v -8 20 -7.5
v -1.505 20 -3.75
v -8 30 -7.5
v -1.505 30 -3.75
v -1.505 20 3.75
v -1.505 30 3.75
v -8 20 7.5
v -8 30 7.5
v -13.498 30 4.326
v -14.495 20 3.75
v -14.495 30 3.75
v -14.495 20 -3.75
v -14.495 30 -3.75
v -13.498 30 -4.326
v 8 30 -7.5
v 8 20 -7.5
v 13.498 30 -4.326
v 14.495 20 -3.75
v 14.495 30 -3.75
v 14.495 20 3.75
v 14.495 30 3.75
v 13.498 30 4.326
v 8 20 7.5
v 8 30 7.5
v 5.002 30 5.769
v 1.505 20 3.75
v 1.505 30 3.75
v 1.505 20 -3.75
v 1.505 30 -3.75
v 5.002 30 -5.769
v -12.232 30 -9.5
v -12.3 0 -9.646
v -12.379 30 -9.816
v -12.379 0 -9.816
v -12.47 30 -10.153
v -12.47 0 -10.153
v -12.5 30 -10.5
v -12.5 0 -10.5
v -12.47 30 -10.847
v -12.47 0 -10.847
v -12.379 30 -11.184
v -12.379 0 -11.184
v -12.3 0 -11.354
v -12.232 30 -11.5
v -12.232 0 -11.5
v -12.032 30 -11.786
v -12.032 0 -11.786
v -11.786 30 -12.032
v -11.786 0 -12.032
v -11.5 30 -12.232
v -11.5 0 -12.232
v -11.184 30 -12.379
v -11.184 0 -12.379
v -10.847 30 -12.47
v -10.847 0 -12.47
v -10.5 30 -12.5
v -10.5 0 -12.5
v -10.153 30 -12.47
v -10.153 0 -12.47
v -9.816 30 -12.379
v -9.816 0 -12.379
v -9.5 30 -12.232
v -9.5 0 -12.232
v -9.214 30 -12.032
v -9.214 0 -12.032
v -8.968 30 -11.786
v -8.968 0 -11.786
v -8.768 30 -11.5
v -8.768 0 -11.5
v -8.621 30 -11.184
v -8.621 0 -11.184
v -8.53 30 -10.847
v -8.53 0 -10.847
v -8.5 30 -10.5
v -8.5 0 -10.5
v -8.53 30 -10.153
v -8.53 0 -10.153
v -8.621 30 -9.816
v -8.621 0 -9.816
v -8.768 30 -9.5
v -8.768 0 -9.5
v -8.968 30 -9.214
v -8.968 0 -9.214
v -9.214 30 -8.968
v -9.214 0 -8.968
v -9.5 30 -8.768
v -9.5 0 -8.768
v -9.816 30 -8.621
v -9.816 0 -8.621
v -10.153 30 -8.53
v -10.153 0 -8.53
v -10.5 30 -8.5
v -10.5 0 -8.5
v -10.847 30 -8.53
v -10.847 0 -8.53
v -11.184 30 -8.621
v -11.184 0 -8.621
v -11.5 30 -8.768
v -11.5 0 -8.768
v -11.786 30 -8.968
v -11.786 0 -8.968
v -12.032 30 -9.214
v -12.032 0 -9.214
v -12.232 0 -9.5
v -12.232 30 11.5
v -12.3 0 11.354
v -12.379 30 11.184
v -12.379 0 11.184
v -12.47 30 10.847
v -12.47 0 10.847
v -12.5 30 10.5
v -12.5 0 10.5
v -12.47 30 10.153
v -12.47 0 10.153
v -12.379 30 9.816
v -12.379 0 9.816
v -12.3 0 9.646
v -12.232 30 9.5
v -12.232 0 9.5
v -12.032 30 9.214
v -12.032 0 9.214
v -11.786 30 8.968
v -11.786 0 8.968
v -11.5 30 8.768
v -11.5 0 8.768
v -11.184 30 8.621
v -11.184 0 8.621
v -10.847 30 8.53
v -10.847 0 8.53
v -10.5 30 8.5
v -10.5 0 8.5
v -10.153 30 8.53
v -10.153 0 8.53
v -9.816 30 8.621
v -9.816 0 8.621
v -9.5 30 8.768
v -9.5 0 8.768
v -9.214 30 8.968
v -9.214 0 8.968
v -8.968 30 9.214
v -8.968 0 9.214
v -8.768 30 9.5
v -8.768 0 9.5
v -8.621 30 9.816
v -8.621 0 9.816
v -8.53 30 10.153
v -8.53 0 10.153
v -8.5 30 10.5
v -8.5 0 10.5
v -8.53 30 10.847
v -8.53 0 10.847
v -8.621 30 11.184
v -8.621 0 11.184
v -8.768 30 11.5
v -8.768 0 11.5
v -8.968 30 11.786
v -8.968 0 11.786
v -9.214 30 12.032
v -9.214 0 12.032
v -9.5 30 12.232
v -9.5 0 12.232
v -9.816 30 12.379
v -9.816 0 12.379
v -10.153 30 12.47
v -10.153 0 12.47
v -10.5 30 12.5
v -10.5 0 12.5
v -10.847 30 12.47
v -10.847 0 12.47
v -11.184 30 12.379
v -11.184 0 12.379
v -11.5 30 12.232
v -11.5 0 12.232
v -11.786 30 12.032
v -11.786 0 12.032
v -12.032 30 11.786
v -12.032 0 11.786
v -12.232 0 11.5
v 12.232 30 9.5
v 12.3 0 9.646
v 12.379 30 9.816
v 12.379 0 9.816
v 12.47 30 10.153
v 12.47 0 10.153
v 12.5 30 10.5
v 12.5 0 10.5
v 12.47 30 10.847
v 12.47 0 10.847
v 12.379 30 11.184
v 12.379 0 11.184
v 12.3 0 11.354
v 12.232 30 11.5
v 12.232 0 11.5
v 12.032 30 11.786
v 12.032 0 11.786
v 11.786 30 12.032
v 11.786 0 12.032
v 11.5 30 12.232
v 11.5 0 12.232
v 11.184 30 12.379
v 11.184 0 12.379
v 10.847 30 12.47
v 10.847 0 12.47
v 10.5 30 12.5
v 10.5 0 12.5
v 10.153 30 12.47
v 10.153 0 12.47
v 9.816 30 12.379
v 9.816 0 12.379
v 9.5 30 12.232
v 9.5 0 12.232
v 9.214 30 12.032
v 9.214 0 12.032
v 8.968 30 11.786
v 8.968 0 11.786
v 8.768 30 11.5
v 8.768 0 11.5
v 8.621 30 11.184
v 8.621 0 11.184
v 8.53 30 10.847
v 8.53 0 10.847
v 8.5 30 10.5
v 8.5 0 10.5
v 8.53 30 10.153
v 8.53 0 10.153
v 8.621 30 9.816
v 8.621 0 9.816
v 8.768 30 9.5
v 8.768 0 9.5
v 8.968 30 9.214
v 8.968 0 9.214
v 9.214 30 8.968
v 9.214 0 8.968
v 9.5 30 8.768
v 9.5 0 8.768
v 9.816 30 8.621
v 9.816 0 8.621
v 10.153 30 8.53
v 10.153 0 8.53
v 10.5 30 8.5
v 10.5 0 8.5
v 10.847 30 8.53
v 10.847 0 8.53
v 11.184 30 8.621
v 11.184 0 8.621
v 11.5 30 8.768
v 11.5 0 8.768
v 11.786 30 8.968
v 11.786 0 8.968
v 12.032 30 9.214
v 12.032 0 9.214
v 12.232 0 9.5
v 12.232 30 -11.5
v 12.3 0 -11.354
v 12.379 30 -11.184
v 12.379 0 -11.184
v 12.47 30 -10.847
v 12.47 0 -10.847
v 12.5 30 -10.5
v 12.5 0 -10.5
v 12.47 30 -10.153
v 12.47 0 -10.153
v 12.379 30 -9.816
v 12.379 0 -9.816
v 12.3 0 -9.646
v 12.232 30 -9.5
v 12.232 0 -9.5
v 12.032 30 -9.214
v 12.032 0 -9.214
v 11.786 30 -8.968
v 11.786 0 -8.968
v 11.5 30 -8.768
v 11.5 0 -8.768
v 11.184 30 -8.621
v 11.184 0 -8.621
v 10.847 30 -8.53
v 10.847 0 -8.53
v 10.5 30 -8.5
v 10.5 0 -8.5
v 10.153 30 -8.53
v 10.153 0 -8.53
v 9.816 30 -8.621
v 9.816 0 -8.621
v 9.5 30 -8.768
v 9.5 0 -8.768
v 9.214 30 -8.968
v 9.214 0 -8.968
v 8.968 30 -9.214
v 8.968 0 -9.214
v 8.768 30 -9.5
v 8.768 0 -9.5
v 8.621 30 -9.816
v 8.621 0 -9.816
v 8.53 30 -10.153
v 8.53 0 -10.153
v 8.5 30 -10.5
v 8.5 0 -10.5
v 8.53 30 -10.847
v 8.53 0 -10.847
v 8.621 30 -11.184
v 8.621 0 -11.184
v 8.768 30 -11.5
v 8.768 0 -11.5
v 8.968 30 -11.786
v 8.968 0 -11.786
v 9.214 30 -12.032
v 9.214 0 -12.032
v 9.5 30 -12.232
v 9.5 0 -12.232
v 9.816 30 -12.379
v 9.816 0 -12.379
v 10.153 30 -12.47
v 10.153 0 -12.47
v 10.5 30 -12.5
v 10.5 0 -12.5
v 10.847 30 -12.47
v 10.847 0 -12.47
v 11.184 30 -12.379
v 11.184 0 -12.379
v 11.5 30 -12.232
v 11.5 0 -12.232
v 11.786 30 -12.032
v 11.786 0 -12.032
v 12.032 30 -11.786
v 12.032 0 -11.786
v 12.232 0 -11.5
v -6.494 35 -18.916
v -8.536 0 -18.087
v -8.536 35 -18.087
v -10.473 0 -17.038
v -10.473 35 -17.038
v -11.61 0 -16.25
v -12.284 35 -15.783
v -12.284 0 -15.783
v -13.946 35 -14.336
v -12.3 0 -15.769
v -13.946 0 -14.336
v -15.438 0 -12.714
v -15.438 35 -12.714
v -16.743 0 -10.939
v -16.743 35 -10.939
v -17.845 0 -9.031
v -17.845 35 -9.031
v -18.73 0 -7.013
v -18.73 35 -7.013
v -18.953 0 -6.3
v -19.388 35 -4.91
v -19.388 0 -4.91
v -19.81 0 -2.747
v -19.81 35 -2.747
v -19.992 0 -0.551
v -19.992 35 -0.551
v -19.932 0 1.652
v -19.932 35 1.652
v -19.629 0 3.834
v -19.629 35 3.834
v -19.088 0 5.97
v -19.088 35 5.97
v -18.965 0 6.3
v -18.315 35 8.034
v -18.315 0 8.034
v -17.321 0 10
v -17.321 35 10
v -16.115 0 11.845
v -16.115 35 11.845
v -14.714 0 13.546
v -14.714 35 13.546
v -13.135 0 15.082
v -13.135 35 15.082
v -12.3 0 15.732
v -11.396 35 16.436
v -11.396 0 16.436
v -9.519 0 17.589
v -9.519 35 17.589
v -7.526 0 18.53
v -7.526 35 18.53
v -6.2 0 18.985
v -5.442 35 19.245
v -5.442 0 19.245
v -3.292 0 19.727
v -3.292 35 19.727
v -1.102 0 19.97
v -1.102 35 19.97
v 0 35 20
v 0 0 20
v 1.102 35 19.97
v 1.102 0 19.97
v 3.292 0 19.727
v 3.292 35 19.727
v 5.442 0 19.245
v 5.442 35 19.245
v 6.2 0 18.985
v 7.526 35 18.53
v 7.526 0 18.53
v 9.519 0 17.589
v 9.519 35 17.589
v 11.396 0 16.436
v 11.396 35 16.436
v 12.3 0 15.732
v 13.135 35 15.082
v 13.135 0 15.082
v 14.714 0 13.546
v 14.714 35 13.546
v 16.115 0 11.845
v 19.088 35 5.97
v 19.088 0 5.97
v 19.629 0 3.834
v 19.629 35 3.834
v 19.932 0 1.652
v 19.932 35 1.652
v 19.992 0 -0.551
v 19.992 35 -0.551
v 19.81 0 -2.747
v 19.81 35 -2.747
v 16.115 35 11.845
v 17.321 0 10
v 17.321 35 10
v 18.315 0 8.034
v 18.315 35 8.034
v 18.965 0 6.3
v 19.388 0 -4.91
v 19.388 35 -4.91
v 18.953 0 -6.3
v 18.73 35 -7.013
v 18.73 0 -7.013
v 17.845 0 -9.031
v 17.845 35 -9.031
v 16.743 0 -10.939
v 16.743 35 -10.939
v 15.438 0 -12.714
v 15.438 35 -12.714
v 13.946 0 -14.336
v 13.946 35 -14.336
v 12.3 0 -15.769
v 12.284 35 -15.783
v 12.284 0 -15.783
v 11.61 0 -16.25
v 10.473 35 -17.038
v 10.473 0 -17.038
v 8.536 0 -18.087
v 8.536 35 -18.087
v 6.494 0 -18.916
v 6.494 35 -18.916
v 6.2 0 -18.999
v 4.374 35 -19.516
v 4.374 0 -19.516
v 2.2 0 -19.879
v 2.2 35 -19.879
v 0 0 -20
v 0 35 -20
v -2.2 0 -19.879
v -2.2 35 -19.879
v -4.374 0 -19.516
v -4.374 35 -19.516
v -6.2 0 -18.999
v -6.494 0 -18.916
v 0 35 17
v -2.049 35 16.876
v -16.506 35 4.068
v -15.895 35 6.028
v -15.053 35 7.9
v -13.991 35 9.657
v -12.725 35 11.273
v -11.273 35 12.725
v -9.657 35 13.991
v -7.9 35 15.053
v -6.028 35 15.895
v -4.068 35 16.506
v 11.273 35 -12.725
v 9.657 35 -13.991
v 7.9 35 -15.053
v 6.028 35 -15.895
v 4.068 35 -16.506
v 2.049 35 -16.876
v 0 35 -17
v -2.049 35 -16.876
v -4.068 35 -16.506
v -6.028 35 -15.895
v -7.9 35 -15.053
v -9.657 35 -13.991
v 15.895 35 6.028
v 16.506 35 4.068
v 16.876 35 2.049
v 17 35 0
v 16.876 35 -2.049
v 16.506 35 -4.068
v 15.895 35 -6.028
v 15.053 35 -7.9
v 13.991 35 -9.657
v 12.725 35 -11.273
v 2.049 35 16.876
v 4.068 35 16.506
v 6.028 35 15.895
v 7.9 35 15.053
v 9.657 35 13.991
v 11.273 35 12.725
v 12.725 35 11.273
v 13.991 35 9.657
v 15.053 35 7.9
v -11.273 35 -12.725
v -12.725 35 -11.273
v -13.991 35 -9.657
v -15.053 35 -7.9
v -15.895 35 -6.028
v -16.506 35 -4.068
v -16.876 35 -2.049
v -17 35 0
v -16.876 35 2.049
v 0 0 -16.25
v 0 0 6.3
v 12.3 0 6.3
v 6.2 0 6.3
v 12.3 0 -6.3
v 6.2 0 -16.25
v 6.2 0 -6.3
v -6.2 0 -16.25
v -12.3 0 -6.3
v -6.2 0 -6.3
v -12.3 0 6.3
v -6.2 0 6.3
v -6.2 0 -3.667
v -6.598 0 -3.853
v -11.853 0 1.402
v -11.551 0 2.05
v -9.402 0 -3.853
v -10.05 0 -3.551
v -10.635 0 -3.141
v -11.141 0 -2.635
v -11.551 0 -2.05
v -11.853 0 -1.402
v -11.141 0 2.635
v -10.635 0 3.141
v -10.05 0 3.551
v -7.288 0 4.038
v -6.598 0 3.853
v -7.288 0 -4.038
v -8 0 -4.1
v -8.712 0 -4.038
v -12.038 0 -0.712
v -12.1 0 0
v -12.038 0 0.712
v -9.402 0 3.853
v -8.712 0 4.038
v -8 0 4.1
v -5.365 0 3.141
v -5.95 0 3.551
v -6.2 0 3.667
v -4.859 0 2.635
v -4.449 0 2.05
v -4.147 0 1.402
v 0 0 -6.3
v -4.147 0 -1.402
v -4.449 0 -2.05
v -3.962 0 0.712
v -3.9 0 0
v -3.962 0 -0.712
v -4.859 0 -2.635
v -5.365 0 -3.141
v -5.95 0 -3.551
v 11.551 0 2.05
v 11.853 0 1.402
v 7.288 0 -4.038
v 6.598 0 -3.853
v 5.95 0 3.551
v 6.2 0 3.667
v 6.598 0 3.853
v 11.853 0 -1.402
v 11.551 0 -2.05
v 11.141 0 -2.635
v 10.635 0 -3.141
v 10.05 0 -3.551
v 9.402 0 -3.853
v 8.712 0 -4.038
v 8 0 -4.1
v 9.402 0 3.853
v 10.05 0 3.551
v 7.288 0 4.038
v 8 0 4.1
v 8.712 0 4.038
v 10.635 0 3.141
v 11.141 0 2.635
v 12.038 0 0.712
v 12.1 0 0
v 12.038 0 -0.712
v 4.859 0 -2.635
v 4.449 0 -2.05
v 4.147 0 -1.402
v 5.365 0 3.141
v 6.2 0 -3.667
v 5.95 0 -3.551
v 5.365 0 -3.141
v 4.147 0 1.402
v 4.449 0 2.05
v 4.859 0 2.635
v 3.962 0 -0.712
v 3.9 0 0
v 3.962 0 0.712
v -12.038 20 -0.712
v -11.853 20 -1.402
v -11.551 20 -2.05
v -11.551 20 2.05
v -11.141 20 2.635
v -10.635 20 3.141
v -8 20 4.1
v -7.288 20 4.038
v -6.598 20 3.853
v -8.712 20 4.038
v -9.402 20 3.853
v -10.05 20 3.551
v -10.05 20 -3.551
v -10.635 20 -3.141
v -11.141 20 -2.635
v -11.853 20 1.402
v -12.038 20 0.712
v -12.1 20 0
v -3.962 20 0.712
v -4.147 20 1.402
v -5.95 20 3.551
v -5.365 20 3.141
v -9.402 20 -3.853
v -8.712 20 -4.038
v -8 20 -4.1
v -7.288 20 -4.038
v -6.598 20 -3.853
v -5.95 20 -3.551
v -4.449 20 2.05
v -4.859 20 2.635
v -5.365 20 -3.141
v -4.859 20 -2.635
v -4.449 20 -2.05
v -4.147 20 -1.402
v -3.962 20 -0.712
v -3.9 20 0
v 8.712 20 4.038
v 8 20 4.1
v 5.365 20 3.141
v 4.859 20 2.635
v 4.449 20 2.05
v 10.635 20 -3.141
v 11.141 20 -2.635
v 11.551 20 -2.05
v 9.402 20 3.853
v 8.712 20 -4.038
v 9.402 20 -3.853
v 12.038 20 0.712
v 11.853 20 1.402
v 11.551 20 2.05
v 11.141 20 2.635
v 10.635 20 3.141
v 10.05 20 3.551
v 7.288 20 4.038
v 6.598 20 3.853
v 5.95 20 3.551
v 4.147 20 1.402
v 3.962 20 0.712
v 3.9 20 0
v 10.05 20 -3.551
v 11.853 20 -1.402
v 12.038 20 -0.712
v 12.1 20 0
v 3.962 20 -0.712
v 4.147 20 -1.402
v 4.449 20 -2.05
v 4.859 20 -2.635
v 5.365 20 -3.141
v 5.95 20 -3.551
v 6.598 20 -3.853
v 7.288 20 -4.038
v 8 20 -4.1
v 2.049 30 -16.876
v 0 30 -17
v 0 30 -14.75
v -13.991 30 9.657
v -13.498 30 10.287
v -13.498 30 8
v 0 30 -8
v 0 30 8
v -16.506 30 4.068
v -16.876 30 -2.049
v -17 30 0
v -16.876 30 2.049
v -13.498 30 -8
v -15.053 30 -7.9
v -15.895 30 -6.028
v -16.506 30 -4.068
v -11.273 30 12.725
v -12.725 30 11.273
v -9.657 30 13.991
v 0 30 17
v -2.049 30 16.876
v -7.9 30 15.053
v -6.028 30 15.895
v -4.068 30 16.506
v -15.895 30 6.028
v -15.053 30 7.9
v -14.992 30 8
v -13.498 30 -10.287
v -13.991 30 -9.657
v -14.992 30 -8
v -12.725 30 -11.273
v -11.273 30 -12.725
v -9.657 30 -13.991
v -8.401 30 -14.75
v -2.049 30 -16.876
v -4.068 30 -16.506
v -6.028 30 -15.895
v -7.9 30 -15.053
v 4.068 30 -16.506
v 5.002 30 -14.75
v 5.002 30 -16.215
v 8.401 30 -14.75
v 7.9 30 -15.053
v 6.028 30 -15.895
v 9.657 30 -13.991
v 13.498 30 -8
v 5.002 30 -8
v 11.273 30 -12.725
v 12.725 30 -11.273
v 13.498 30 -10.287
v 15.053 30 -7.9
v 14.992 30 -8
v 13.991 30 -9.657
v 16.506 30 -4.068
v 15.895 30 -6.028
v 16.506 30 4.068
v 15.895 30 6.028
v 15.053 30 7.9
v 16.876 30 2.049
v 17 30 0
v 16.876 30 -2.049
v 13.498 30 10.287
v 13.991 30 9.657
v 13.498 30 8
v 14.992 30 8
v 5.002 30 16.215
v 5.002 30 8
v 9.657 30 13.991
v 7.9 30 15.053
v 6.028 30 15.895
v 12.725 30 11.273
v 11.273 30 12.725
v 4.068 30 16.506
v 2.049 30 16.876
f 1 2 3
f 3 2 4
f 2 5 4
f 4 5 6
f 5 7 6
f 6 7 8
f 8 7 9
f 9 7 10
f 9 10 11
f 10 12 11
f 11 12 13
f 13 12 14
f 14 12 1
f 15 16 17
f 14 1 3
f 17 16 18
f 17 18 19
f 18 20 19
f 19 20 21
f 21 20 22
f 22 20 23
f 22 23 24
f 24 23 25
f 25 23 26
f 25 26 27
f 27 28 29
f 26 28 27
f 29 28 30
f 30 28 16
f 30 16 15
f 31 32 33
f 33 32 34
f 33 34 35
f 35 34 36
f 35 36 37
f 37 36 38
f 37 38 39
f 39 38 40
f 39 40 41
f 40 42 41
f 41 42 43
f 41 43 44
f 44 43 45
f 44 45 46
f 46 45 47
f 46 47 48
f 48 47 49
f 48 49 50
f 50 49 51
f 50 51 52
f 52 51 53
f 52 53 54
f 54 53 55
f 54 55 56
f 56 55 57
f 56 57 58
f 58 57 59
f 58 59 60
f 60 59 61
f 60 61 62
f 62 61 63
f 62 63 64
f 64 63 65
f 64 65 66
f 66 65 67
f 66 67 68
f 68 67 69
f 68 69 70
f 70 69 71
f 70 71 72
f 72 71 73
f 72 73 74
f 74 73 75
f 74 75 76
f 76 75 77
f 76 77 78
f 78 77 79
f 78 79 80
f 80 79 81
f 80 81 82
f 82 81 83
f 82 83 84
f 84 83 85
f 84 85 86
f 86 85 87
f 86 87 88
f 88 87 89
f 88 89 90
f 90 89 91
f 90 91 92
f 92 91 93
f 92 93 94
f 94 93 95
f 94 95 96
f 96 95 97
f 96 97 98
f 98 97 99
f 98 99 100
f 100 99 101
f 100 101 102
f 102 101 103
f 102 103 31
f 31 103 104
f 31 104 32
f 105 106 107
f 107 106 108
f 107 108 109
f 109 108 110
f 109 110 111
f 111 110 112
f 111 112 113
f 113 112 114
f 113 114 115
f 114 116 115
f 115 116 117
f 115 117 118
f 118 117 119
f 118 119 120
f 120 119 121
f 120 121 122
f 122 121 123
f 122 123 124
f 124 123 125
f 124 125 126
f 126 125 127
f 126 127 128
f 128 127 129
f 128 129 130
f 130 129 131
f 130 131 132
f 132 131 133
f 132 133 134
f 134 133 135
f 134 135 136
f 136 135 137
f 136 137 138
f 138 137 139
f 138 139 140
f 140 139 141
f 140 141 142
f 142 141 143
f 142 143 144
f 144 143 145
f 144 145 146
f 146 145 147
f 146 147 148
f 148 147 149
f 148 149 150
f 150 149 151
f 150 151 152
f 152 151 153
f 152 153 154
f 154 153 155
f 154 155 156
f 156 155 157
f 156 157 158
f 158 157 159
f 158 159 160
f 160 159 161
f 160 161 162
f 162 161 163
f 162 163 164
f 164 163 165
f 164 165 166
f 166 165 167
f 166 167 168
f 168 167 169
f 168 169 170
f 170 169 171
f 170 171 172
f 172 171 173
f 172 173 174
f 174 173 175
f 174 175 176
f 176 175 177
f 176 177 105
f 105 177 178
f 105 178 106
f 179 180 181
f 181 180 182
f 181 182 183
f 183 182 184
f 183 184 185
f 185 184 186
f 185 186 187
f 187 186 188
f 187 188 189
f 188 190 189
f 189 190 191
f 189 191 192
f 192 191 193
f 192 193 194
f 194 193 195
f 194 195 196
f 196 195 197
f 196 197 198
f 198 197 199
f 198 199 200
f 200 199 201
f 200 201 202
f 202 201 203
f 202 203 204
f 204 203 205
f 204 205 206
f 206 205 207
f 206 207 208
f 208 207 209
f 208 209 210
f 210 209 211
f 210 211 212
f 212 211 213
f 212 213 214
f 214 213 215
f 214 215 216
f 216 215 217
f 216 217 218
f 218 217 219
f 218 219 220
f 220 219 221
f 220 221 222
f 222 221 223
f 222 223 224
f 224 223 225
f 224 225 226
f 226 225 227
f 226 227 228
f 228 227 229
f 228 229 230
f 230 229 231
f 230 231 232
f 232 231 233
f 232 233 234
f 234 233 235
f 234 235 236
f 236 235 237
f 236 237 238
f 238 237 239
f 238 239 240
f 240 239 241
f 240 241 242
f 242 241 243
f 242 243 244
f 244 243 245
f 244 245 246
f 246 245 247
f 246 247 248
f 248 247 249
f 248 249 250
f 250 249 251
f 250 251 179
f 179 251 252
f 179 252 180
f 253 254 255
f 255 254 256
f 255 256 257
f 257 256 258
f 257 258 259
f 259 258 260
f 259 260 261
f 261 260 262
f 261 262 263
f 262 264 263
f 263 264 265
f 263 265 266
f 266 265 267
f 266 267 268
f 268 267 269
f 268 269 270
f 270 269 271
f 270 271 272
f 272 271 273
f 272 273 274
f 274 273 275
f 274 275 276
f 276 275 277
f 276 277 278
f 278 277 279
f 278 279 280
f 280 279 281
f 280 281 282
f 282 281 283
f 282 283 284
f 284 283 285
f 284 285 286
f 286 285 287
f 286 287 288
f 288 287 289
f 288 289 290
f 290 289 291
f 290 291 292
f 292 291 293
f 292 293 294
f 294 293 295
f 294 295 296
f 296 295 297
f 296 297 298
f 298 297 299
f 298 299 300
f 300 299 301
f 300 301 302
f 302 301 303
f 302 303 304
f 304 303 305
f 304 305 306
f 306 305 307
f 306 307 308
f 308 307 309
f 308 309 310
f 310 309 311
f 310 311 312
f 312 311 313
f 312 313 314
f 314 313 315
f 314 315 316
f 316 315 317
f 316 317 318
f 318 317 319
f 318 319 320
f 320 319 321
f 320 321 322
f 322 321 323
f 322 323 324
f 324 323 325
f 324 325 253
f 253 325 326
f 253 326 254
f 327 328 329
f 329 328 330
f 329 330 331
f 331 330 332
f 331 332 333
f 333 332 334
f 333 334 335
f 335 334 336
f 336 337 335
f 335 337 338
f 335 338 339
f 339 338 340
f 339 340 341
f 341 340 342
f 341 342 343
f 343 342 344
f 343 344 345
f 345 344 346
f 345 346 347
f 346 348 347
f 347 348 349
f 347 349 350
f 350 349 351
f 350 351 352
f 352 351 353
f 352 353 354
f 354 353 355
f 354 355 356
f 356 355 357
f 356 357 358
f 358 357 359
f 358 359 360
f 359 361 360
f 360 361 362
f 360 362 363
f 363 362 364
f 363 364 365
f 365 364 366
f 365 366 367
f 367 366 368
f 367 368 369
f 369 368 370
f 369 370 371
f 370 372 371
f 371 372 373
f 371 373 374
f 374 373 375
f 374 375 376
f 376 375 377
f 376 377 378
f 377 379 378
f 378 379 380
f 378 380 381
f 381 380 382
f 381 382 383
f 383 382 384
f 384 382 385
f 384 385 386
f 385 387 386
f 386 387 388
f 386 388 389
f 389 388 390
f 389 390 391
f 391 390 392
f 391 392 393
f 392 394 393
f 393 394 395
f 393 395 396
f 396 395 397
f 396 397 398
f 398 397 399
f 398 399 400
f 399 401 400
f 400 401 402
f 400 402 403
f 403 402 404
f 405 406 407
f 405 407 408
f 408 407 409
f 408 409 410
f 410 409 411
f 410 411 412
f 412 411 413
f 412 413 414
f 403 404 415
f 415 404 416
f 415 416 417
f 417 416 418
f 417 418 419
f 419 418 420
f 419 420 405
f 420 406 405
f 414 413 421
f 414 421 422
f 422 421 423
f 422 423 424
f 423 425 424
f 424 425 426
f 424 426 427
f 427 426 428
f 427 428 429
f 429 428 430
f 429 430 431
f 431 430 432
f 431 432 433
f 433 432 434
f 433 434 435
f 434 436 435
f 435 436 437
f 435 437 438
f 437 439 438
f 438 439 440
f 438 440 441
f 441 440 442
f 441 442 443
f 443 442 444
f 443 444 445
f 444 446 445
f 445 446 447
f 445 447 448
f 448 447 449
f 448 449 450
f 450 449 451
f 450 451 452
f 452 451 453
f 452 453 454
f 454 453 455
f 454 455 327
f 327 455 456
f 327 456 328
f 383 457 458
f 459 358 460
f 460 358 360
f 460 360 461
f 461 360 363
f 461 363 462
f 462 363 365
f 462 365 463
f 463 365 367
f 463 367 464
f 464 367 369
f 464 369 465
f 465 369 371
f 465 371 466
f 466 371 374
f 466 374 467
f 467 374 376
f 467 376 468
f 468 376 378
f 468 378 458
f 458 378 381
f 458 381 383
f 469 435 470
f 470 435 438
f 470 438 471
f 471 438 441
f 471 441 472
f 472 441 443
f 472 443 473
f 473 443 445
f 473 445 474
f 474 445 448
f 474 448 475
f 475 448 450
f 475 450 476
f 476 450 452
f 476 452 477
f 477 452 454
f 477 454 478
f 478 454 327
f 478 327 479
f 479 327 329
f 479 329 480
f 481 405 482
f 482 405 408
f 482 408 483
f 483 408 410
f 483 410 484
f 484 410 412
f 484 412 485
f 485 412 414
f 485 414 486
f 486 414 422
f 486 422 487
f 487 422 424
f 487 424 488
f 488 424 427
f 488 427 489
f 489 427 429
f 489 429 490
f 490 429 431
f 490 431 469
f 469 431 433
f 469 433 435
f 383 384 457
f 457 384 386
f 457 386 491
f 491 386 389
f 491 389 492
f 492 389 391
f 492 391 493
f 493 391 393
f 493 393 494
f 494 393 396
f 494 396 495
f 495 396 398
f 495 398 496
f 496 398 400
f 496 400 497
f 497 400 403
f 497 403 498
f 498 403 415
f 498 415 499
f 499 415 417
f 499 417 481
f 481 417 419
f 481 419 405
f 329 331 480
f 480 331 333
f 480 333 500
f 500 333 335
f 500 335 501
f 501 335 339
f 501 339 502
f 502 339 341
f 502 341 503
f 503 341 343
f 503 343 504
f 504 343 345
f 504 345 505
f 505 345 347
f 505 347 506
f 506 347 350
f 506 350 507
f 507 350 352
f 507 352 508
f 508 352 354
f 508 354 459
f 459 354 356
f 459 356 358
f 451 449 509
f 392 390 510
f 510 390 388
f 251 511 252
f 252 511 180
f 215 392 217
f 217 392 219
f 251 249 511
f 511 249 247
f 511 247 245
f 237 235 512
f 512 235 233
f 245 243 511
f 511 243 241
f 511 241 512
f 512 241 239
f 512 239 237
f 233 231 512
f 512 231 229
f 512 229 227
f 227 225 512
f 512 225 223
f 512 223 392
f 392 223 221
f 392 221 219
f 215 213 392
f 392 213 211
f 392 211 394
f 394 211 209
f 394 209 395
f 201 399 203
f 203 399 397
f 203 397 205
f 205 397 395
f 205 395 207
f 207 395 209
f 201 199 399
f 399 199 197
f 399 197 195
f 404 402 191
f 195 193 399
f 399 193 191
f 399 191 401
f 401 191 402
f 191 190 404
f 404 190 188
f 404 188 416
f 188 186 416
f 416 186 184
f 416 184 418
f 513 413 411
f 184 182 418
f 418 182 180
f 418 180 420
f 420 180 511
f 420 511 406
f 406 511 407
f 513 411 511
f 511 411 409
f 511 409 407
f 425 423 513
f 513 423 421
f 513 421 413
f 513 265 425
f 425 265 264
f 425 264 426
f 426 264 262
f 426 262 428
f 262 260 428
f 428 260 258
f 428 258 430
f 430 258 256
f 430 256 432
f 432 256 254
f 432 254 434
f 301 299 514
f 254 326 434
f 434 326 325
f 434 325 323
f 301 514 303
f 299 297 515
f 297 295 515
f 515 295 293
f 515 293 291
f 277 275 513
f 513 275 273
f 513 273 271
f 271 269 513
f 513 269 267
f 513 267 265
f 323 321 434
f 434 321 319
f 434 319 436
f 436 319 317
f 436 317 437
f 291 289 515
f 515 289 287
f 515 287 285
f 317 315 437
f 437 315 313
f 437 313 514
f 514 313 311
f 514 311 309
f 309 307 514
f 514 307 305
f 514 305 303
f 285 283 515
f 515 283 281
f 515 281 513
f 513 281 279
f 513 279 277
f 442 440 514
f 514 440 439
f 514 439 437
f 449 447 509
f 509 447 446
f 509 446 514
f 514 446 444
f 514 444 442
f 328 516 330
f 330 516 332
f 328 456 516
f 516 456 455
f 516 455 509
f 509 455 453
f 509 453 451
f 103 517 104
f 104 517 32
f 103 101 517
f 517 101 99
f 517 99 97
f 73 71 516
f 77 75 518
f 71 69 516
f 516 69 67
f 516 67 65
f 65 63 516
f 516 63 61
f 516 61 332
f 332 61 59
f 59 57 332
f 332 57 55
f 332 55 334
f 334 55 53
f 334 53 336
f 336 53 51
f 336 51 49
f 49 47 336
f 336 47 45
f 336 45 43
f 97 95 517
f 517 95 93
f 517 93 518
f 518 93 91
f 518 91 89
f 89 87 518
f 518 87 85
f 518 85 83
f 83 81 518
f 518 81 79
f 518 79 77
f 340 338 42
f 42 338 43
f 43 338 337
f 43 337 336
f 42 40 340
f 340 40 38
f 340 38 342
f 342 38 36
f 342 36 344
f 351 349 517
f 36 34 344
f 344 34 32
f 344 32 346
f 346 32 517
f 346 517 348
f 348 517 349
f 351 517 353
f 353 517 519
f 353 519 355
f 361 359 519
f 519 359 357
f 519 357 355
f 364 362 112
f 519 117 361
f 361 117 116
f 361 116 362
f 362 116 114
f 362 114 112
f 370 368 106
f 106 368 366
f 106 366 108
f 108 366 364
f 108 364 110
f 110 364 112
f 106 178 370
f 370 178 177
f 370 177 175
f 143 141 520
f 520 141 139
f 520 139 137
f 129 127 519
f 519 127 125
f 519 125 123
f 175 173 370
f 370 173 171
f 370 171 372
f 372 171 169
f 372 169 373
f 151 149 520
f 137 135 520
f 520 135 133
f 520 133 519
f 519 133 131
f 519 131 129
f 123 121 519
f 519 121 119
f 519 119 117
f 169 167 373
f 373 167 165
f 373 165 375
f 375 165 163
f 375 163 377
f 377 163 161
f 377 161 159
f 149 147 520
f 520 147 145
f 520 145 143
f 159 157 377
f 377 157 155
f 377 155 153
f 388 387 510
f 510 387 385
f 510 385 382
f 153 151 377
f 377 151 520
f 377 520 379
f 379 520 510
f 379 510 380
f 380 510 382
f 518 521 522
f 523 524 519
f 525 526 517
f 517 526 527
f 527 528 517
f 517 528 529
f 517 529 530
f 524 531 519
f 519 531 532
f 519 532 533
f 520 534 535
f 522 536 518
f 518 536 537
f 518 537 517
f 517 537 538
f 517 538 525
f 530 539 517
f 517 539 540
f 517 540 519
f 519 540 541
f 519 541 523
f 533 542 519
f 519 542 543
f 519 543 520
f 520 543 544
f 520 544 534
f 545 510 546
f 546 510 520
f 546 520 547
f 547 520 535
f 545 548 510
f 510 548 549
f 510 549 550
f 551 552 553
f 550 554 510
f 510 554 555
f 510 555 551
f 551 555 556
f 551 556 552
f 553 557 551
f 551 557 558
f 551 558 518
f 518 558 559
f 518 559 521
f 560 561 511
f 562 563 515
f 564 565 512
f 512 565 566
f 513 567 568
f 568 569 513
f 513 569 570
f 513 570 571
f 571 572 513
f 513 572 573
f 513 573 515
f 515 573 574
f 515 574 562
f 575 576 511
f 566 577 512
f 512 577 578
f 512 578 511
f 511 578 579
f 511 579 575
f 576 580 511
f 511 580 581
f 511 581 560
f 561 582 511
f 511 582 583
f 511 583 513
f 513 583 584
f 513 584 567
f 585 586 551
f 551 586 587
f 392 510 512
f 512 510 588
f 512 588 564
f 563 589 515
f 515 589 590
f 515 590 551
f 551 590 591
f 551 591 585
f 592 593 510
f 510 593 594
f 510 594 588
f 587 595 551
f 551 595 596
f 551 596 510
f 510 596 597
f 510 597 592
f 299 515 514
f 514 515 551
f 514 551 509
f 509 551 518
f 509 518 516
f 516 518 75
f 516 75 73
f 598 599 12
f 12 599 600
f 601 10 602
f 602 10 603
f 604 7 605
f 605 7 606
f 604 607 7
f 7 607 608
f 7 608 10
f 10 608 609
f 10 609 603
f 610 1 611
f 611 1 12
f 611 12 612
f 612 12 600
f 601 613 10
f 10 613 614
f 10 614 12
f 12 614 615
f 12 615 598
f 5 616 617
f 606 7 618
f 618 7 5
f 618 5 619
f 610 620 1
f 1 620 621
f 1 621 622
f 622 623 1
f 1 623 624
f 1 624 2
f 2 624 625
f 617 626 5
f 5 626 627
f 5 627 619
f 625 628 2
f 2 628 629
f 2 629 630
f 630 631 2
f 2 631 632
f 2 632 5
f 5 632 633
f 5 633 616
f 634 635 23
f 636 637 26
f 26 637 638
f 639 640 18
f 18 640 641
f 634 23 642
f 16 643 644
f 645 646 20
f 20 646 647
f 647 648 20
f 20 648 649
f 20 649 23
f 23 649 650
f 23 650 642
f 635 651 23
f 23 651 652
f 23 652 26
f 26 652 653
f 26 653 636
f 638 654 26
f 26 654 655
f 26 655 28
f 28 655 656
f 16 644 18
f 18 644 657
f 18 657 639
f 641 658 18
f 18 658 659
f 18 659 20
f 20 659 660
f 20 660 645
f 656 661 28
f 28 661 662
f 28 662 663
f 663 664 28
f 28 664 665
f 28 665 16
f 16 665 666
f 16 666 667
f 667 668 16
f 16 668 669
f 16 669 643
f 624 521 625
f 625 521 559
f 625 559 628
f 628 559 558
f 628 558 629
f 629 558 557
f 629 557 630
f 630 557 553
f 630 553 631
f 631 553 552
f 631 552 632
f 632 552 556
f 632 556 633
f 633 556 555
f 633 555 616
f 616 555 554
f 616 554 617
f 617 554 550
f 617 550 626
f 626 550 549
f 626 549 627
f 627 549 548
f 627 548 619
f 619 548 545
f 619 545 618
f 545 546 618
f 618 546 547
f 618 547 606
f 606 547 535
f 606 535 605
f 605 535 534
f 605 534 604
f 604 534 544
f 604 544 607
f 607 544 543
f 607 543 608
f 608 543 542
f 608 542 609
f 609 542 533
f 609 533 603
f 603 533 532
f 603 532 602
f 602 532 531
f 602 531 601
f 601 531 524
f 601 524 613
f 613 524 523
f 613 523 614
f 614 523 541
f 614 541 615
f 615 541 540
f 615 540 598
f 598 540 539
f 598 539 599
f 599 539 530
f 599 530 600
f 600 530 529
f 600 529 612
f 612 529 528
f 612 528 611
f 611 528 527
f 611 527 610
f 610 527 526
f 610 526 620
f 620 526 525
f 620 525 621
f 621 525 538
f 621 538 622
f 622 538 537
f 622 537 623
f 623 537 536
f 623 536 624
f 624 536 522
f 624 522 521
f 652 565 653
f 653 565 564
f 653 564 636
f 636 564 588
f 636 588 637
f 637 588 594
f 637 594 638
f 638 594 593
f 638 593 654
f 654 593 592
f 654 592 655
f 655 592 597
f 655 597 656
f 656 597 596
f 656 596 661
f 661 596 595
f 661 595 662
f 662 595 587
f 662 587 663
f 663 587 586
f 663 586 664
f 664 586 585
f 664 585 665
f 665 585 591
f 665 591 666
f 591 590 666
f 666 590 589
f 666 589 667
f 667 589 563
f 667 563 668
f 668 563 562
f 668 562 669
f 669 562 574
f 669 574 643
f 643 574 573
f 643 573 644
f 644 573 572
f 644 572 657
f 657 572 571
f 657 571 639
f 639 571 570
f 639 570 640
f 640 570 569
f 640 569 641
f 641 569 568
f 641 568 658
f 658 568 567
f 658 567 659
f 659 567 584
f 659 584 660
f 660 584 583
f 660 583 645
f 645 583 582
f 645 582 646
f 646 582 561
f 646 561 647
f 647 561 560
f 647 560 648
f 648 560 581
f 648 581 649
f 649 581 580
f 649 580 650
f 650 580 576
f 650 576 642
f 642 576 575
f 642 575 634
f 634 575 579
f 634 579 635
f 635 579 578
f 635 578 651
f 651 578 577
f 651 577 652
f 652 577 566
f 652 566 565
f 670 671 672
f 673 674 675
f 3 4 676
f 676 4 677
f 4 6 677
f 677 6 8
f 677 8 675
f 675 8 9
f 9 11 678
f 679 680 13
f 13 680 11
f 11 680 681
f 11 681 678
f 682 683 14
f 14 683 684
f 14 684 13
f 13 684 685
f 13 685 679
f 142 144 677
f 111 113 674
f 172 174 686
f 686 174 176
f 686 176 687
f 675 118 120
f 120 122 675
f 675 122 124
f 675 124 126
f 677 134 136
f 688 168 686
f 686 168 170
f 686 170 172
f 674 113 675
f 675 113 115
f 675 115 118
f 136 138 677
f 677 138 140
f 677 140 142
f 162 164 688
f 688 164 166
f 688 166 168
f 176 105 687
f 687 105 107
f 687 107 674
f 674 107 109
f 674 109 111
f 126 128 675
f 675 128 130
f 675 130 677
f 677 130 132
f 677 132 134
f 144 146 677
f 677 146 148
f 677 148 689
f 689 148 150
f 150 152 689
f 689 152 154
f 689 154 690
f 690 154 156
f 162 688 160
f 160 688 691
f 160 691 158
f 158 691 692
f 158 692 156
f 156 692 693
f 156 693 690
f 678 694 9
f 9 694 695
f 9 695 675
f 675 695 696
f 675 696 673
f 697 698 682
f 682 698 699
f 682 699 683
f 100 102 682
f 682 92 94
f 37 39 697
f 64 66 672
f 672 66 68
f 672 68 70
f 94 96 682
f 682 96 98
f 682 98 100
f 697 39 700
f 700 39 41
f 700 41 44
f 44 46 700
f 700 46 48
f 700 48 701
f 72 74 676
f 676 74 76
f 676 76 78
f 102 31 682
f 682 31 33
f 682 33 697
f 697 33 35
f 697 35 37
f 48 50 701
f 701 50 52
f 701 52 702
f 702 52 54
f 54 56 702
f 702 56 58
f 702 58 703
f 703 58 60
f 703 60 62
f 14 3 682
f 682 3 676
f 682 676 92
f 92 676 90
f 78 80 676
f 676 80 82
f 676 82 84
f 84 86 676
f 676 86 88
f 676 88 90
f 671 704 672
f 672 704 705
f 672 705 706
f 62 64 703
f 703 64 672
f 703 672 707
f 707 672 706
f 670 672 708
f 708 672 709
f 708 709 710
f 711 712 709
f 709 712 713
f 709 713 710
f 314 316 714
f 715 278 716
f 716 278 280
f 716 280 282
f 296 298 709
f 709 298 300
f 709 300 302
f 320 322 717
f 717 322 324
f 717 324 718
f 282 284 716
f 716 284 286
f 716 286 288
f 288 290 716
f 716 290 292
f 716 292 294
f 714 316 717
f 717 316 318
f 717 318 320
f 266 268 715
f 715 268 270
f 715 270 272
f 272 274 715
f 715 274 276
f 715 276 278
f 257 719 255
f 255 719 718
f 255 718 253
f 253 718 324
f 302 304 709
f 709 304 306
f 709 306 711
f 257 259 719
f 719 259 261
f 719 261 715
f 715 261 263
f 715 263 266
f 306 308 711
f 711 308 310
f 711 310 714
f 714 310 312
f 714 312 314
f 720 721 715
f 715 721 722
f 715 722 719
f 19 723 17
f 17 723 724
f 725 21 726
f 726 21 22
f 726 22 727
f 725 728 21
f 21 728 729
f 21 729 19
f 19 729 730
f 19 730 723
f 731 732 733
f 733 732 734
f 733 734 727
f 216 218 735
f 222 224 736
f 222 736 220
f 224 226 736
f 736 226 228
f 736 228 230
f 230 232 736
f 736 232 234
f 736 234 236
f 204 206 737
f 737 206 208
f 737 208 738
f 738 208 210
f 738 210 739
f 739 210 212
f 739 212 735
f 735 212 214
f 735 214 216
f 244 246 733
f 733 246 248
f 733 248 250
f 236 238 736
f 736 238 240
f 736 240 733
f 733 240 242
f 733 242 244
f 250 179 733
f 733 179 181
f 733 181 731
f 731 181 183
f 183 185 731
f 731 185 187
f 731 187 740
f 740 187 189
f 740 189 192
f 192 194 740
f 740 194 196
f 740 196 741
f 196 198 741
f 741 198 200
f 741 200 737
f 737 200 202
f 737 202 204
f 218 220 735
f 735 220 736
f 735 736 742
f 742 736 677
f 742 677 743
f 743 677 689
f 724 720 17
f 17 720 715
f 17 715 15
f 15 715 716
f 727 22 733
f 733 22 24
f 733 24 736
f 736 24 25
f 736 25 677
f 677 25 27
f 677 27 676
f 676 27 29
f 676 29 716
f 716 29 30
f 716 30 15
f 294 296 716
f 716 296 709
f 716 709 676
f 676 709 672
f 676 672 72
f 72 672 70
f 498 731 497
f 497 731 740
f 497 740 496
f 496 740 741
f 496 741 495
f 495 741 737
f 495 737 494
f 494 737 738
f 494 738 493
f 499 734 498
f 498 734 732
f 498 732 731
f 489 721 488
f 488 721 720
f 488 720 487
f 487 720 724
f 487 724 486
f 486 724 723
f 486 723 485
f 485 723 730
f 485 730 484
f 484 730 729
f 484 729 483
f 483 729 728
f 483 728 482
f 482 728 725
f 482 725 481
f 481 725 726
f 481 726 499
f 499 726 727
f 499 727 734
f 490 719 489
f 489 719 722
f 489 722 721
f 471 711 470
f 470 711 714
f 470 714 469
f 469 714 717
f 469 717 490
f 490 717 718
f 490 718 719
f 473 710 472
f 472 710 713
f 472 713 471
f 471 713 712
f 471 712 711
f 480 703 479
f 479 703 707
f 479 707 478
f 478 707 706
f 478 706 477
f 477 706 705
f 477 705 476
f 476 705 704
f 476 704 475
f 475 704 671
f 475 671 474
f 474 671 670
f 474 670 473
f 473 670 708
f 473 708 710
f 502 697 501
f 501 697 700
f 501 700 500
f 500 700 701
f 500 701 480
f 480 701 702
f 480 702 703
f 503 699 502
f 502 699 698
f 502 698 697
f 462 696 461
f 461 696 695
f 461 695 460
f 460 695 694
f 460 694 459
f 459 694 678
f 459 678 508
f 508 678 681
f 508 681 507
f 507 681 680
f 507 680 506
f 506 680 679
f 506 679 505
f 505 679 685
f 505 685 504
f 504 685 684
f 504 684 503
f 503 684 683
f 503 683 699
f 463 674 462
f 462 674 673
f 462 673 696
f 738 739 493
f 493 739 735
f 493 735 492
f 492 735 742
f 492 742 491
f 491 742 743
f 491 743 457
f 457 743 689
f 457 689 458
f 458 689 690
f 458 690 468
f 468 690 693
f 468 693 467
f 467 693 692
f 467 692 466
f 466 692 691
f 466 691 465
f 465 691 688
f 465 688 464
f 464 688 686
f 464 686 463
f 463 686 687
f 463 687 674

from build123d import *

# Parameters (mm, degrees)
SKETCH1_R           = 20
BOSS_EXTRUDE1_DEPTH = 35
CUT_EXTRUDE1_DEPTH  = 15
SKETCH3_R           = 4.1
CUT_EXTRUDE2_DEPTH  = 21
SKETCH4_R           = 2
CUT_EXTRUDE3_DEPTH  = 36
SKETCH5_R           = 17
CUT_EXTRUDE4_DEPTH  = 5


with BuildPart() as part:
    # Sketch1 → Boss-Extrude1 (new body)
    with BuildSketch(Plane(origin=(0, 0, 0), x_dir=(1, 0, 0), z_dir=(0, 1, 0))):
        Circle(SKETCH1_R)
    extrude(amount=BOSS_EXTRUDE1_DEPTH)

    # Sketch2 → Cut-Extrude1 (cut)
    with BuildSketch(Plane(origin=(0, 35, 0), x_dir=(1, 0, 0), z_dir=(0, 1, 0))):
        Polygon((-8, 7.5), (-14.495190528, 3.75), (-14.495190528, -3.75), (-8, -7.5), (-1.504809472, -3.75), (-1.504809472, 3.75), align=None)
        Polygon((8, 7.5), (1.504809472, 3.75), (1.504809472, -3.75), (8, -7.5), (14.495190528, -3.75), (14.495190528, 3.75), align=None)
    extrude(amount=-CUT_EXTRUDE1_DEPTH, mode=Mode.SUBTRACT)

    # Sketch3 → Cut-Extrude2 (cut, through all)
    with BuildSketch(Plane(origin=(0, 20, 0), x_dir=(1, 0, 0), z_dir=(0, 1, 0))):
        with Locations((-8, 0)):
            Circle(SKETCH3_R)
        with Locations((8, 0)):
            Circle(SKETCH3_R)
    extrude(amount=-CUT_EXTRUDE2_DEPTH, mode=Mode.SUBTRACT)

    # Sketch4 → Cut-Extrude3 (cut, through all)
    with BuildSketch(Plane(origin=(0, 35, 0), x_dir=(1, 0, 0), z_dir=(0, 1, 0))):
        with Locations((-10.5, 10.5)):
            Circle(SKETCH4_R)
        with Locations((10.5, 10.5)):
            Circle(SKETCH4_R)
        with Locations((10.5, -10.5)):
            Circle(SKETCH4_R)
        with Locations((-10.5, -10.5)):
            Circle(SKETCH4_R)
    extrude(amount=-CUT_EXTRUDE3_DEPTH, mode=Mode.SUBTRACT)

    # Sketch5 → Cut-Extrude4 (cut)
    with BuildSketch(Plane(origin=(0, 35, 0), x_dir=(1, 0, 0), z_dir=(0, 1, 0))):
        Circle(SKETCH5_R)
    extrude(amount=-CUT_EXTRUDE4_DEPTH, mode=Mode.SUBTRACT)


solid = part.part
